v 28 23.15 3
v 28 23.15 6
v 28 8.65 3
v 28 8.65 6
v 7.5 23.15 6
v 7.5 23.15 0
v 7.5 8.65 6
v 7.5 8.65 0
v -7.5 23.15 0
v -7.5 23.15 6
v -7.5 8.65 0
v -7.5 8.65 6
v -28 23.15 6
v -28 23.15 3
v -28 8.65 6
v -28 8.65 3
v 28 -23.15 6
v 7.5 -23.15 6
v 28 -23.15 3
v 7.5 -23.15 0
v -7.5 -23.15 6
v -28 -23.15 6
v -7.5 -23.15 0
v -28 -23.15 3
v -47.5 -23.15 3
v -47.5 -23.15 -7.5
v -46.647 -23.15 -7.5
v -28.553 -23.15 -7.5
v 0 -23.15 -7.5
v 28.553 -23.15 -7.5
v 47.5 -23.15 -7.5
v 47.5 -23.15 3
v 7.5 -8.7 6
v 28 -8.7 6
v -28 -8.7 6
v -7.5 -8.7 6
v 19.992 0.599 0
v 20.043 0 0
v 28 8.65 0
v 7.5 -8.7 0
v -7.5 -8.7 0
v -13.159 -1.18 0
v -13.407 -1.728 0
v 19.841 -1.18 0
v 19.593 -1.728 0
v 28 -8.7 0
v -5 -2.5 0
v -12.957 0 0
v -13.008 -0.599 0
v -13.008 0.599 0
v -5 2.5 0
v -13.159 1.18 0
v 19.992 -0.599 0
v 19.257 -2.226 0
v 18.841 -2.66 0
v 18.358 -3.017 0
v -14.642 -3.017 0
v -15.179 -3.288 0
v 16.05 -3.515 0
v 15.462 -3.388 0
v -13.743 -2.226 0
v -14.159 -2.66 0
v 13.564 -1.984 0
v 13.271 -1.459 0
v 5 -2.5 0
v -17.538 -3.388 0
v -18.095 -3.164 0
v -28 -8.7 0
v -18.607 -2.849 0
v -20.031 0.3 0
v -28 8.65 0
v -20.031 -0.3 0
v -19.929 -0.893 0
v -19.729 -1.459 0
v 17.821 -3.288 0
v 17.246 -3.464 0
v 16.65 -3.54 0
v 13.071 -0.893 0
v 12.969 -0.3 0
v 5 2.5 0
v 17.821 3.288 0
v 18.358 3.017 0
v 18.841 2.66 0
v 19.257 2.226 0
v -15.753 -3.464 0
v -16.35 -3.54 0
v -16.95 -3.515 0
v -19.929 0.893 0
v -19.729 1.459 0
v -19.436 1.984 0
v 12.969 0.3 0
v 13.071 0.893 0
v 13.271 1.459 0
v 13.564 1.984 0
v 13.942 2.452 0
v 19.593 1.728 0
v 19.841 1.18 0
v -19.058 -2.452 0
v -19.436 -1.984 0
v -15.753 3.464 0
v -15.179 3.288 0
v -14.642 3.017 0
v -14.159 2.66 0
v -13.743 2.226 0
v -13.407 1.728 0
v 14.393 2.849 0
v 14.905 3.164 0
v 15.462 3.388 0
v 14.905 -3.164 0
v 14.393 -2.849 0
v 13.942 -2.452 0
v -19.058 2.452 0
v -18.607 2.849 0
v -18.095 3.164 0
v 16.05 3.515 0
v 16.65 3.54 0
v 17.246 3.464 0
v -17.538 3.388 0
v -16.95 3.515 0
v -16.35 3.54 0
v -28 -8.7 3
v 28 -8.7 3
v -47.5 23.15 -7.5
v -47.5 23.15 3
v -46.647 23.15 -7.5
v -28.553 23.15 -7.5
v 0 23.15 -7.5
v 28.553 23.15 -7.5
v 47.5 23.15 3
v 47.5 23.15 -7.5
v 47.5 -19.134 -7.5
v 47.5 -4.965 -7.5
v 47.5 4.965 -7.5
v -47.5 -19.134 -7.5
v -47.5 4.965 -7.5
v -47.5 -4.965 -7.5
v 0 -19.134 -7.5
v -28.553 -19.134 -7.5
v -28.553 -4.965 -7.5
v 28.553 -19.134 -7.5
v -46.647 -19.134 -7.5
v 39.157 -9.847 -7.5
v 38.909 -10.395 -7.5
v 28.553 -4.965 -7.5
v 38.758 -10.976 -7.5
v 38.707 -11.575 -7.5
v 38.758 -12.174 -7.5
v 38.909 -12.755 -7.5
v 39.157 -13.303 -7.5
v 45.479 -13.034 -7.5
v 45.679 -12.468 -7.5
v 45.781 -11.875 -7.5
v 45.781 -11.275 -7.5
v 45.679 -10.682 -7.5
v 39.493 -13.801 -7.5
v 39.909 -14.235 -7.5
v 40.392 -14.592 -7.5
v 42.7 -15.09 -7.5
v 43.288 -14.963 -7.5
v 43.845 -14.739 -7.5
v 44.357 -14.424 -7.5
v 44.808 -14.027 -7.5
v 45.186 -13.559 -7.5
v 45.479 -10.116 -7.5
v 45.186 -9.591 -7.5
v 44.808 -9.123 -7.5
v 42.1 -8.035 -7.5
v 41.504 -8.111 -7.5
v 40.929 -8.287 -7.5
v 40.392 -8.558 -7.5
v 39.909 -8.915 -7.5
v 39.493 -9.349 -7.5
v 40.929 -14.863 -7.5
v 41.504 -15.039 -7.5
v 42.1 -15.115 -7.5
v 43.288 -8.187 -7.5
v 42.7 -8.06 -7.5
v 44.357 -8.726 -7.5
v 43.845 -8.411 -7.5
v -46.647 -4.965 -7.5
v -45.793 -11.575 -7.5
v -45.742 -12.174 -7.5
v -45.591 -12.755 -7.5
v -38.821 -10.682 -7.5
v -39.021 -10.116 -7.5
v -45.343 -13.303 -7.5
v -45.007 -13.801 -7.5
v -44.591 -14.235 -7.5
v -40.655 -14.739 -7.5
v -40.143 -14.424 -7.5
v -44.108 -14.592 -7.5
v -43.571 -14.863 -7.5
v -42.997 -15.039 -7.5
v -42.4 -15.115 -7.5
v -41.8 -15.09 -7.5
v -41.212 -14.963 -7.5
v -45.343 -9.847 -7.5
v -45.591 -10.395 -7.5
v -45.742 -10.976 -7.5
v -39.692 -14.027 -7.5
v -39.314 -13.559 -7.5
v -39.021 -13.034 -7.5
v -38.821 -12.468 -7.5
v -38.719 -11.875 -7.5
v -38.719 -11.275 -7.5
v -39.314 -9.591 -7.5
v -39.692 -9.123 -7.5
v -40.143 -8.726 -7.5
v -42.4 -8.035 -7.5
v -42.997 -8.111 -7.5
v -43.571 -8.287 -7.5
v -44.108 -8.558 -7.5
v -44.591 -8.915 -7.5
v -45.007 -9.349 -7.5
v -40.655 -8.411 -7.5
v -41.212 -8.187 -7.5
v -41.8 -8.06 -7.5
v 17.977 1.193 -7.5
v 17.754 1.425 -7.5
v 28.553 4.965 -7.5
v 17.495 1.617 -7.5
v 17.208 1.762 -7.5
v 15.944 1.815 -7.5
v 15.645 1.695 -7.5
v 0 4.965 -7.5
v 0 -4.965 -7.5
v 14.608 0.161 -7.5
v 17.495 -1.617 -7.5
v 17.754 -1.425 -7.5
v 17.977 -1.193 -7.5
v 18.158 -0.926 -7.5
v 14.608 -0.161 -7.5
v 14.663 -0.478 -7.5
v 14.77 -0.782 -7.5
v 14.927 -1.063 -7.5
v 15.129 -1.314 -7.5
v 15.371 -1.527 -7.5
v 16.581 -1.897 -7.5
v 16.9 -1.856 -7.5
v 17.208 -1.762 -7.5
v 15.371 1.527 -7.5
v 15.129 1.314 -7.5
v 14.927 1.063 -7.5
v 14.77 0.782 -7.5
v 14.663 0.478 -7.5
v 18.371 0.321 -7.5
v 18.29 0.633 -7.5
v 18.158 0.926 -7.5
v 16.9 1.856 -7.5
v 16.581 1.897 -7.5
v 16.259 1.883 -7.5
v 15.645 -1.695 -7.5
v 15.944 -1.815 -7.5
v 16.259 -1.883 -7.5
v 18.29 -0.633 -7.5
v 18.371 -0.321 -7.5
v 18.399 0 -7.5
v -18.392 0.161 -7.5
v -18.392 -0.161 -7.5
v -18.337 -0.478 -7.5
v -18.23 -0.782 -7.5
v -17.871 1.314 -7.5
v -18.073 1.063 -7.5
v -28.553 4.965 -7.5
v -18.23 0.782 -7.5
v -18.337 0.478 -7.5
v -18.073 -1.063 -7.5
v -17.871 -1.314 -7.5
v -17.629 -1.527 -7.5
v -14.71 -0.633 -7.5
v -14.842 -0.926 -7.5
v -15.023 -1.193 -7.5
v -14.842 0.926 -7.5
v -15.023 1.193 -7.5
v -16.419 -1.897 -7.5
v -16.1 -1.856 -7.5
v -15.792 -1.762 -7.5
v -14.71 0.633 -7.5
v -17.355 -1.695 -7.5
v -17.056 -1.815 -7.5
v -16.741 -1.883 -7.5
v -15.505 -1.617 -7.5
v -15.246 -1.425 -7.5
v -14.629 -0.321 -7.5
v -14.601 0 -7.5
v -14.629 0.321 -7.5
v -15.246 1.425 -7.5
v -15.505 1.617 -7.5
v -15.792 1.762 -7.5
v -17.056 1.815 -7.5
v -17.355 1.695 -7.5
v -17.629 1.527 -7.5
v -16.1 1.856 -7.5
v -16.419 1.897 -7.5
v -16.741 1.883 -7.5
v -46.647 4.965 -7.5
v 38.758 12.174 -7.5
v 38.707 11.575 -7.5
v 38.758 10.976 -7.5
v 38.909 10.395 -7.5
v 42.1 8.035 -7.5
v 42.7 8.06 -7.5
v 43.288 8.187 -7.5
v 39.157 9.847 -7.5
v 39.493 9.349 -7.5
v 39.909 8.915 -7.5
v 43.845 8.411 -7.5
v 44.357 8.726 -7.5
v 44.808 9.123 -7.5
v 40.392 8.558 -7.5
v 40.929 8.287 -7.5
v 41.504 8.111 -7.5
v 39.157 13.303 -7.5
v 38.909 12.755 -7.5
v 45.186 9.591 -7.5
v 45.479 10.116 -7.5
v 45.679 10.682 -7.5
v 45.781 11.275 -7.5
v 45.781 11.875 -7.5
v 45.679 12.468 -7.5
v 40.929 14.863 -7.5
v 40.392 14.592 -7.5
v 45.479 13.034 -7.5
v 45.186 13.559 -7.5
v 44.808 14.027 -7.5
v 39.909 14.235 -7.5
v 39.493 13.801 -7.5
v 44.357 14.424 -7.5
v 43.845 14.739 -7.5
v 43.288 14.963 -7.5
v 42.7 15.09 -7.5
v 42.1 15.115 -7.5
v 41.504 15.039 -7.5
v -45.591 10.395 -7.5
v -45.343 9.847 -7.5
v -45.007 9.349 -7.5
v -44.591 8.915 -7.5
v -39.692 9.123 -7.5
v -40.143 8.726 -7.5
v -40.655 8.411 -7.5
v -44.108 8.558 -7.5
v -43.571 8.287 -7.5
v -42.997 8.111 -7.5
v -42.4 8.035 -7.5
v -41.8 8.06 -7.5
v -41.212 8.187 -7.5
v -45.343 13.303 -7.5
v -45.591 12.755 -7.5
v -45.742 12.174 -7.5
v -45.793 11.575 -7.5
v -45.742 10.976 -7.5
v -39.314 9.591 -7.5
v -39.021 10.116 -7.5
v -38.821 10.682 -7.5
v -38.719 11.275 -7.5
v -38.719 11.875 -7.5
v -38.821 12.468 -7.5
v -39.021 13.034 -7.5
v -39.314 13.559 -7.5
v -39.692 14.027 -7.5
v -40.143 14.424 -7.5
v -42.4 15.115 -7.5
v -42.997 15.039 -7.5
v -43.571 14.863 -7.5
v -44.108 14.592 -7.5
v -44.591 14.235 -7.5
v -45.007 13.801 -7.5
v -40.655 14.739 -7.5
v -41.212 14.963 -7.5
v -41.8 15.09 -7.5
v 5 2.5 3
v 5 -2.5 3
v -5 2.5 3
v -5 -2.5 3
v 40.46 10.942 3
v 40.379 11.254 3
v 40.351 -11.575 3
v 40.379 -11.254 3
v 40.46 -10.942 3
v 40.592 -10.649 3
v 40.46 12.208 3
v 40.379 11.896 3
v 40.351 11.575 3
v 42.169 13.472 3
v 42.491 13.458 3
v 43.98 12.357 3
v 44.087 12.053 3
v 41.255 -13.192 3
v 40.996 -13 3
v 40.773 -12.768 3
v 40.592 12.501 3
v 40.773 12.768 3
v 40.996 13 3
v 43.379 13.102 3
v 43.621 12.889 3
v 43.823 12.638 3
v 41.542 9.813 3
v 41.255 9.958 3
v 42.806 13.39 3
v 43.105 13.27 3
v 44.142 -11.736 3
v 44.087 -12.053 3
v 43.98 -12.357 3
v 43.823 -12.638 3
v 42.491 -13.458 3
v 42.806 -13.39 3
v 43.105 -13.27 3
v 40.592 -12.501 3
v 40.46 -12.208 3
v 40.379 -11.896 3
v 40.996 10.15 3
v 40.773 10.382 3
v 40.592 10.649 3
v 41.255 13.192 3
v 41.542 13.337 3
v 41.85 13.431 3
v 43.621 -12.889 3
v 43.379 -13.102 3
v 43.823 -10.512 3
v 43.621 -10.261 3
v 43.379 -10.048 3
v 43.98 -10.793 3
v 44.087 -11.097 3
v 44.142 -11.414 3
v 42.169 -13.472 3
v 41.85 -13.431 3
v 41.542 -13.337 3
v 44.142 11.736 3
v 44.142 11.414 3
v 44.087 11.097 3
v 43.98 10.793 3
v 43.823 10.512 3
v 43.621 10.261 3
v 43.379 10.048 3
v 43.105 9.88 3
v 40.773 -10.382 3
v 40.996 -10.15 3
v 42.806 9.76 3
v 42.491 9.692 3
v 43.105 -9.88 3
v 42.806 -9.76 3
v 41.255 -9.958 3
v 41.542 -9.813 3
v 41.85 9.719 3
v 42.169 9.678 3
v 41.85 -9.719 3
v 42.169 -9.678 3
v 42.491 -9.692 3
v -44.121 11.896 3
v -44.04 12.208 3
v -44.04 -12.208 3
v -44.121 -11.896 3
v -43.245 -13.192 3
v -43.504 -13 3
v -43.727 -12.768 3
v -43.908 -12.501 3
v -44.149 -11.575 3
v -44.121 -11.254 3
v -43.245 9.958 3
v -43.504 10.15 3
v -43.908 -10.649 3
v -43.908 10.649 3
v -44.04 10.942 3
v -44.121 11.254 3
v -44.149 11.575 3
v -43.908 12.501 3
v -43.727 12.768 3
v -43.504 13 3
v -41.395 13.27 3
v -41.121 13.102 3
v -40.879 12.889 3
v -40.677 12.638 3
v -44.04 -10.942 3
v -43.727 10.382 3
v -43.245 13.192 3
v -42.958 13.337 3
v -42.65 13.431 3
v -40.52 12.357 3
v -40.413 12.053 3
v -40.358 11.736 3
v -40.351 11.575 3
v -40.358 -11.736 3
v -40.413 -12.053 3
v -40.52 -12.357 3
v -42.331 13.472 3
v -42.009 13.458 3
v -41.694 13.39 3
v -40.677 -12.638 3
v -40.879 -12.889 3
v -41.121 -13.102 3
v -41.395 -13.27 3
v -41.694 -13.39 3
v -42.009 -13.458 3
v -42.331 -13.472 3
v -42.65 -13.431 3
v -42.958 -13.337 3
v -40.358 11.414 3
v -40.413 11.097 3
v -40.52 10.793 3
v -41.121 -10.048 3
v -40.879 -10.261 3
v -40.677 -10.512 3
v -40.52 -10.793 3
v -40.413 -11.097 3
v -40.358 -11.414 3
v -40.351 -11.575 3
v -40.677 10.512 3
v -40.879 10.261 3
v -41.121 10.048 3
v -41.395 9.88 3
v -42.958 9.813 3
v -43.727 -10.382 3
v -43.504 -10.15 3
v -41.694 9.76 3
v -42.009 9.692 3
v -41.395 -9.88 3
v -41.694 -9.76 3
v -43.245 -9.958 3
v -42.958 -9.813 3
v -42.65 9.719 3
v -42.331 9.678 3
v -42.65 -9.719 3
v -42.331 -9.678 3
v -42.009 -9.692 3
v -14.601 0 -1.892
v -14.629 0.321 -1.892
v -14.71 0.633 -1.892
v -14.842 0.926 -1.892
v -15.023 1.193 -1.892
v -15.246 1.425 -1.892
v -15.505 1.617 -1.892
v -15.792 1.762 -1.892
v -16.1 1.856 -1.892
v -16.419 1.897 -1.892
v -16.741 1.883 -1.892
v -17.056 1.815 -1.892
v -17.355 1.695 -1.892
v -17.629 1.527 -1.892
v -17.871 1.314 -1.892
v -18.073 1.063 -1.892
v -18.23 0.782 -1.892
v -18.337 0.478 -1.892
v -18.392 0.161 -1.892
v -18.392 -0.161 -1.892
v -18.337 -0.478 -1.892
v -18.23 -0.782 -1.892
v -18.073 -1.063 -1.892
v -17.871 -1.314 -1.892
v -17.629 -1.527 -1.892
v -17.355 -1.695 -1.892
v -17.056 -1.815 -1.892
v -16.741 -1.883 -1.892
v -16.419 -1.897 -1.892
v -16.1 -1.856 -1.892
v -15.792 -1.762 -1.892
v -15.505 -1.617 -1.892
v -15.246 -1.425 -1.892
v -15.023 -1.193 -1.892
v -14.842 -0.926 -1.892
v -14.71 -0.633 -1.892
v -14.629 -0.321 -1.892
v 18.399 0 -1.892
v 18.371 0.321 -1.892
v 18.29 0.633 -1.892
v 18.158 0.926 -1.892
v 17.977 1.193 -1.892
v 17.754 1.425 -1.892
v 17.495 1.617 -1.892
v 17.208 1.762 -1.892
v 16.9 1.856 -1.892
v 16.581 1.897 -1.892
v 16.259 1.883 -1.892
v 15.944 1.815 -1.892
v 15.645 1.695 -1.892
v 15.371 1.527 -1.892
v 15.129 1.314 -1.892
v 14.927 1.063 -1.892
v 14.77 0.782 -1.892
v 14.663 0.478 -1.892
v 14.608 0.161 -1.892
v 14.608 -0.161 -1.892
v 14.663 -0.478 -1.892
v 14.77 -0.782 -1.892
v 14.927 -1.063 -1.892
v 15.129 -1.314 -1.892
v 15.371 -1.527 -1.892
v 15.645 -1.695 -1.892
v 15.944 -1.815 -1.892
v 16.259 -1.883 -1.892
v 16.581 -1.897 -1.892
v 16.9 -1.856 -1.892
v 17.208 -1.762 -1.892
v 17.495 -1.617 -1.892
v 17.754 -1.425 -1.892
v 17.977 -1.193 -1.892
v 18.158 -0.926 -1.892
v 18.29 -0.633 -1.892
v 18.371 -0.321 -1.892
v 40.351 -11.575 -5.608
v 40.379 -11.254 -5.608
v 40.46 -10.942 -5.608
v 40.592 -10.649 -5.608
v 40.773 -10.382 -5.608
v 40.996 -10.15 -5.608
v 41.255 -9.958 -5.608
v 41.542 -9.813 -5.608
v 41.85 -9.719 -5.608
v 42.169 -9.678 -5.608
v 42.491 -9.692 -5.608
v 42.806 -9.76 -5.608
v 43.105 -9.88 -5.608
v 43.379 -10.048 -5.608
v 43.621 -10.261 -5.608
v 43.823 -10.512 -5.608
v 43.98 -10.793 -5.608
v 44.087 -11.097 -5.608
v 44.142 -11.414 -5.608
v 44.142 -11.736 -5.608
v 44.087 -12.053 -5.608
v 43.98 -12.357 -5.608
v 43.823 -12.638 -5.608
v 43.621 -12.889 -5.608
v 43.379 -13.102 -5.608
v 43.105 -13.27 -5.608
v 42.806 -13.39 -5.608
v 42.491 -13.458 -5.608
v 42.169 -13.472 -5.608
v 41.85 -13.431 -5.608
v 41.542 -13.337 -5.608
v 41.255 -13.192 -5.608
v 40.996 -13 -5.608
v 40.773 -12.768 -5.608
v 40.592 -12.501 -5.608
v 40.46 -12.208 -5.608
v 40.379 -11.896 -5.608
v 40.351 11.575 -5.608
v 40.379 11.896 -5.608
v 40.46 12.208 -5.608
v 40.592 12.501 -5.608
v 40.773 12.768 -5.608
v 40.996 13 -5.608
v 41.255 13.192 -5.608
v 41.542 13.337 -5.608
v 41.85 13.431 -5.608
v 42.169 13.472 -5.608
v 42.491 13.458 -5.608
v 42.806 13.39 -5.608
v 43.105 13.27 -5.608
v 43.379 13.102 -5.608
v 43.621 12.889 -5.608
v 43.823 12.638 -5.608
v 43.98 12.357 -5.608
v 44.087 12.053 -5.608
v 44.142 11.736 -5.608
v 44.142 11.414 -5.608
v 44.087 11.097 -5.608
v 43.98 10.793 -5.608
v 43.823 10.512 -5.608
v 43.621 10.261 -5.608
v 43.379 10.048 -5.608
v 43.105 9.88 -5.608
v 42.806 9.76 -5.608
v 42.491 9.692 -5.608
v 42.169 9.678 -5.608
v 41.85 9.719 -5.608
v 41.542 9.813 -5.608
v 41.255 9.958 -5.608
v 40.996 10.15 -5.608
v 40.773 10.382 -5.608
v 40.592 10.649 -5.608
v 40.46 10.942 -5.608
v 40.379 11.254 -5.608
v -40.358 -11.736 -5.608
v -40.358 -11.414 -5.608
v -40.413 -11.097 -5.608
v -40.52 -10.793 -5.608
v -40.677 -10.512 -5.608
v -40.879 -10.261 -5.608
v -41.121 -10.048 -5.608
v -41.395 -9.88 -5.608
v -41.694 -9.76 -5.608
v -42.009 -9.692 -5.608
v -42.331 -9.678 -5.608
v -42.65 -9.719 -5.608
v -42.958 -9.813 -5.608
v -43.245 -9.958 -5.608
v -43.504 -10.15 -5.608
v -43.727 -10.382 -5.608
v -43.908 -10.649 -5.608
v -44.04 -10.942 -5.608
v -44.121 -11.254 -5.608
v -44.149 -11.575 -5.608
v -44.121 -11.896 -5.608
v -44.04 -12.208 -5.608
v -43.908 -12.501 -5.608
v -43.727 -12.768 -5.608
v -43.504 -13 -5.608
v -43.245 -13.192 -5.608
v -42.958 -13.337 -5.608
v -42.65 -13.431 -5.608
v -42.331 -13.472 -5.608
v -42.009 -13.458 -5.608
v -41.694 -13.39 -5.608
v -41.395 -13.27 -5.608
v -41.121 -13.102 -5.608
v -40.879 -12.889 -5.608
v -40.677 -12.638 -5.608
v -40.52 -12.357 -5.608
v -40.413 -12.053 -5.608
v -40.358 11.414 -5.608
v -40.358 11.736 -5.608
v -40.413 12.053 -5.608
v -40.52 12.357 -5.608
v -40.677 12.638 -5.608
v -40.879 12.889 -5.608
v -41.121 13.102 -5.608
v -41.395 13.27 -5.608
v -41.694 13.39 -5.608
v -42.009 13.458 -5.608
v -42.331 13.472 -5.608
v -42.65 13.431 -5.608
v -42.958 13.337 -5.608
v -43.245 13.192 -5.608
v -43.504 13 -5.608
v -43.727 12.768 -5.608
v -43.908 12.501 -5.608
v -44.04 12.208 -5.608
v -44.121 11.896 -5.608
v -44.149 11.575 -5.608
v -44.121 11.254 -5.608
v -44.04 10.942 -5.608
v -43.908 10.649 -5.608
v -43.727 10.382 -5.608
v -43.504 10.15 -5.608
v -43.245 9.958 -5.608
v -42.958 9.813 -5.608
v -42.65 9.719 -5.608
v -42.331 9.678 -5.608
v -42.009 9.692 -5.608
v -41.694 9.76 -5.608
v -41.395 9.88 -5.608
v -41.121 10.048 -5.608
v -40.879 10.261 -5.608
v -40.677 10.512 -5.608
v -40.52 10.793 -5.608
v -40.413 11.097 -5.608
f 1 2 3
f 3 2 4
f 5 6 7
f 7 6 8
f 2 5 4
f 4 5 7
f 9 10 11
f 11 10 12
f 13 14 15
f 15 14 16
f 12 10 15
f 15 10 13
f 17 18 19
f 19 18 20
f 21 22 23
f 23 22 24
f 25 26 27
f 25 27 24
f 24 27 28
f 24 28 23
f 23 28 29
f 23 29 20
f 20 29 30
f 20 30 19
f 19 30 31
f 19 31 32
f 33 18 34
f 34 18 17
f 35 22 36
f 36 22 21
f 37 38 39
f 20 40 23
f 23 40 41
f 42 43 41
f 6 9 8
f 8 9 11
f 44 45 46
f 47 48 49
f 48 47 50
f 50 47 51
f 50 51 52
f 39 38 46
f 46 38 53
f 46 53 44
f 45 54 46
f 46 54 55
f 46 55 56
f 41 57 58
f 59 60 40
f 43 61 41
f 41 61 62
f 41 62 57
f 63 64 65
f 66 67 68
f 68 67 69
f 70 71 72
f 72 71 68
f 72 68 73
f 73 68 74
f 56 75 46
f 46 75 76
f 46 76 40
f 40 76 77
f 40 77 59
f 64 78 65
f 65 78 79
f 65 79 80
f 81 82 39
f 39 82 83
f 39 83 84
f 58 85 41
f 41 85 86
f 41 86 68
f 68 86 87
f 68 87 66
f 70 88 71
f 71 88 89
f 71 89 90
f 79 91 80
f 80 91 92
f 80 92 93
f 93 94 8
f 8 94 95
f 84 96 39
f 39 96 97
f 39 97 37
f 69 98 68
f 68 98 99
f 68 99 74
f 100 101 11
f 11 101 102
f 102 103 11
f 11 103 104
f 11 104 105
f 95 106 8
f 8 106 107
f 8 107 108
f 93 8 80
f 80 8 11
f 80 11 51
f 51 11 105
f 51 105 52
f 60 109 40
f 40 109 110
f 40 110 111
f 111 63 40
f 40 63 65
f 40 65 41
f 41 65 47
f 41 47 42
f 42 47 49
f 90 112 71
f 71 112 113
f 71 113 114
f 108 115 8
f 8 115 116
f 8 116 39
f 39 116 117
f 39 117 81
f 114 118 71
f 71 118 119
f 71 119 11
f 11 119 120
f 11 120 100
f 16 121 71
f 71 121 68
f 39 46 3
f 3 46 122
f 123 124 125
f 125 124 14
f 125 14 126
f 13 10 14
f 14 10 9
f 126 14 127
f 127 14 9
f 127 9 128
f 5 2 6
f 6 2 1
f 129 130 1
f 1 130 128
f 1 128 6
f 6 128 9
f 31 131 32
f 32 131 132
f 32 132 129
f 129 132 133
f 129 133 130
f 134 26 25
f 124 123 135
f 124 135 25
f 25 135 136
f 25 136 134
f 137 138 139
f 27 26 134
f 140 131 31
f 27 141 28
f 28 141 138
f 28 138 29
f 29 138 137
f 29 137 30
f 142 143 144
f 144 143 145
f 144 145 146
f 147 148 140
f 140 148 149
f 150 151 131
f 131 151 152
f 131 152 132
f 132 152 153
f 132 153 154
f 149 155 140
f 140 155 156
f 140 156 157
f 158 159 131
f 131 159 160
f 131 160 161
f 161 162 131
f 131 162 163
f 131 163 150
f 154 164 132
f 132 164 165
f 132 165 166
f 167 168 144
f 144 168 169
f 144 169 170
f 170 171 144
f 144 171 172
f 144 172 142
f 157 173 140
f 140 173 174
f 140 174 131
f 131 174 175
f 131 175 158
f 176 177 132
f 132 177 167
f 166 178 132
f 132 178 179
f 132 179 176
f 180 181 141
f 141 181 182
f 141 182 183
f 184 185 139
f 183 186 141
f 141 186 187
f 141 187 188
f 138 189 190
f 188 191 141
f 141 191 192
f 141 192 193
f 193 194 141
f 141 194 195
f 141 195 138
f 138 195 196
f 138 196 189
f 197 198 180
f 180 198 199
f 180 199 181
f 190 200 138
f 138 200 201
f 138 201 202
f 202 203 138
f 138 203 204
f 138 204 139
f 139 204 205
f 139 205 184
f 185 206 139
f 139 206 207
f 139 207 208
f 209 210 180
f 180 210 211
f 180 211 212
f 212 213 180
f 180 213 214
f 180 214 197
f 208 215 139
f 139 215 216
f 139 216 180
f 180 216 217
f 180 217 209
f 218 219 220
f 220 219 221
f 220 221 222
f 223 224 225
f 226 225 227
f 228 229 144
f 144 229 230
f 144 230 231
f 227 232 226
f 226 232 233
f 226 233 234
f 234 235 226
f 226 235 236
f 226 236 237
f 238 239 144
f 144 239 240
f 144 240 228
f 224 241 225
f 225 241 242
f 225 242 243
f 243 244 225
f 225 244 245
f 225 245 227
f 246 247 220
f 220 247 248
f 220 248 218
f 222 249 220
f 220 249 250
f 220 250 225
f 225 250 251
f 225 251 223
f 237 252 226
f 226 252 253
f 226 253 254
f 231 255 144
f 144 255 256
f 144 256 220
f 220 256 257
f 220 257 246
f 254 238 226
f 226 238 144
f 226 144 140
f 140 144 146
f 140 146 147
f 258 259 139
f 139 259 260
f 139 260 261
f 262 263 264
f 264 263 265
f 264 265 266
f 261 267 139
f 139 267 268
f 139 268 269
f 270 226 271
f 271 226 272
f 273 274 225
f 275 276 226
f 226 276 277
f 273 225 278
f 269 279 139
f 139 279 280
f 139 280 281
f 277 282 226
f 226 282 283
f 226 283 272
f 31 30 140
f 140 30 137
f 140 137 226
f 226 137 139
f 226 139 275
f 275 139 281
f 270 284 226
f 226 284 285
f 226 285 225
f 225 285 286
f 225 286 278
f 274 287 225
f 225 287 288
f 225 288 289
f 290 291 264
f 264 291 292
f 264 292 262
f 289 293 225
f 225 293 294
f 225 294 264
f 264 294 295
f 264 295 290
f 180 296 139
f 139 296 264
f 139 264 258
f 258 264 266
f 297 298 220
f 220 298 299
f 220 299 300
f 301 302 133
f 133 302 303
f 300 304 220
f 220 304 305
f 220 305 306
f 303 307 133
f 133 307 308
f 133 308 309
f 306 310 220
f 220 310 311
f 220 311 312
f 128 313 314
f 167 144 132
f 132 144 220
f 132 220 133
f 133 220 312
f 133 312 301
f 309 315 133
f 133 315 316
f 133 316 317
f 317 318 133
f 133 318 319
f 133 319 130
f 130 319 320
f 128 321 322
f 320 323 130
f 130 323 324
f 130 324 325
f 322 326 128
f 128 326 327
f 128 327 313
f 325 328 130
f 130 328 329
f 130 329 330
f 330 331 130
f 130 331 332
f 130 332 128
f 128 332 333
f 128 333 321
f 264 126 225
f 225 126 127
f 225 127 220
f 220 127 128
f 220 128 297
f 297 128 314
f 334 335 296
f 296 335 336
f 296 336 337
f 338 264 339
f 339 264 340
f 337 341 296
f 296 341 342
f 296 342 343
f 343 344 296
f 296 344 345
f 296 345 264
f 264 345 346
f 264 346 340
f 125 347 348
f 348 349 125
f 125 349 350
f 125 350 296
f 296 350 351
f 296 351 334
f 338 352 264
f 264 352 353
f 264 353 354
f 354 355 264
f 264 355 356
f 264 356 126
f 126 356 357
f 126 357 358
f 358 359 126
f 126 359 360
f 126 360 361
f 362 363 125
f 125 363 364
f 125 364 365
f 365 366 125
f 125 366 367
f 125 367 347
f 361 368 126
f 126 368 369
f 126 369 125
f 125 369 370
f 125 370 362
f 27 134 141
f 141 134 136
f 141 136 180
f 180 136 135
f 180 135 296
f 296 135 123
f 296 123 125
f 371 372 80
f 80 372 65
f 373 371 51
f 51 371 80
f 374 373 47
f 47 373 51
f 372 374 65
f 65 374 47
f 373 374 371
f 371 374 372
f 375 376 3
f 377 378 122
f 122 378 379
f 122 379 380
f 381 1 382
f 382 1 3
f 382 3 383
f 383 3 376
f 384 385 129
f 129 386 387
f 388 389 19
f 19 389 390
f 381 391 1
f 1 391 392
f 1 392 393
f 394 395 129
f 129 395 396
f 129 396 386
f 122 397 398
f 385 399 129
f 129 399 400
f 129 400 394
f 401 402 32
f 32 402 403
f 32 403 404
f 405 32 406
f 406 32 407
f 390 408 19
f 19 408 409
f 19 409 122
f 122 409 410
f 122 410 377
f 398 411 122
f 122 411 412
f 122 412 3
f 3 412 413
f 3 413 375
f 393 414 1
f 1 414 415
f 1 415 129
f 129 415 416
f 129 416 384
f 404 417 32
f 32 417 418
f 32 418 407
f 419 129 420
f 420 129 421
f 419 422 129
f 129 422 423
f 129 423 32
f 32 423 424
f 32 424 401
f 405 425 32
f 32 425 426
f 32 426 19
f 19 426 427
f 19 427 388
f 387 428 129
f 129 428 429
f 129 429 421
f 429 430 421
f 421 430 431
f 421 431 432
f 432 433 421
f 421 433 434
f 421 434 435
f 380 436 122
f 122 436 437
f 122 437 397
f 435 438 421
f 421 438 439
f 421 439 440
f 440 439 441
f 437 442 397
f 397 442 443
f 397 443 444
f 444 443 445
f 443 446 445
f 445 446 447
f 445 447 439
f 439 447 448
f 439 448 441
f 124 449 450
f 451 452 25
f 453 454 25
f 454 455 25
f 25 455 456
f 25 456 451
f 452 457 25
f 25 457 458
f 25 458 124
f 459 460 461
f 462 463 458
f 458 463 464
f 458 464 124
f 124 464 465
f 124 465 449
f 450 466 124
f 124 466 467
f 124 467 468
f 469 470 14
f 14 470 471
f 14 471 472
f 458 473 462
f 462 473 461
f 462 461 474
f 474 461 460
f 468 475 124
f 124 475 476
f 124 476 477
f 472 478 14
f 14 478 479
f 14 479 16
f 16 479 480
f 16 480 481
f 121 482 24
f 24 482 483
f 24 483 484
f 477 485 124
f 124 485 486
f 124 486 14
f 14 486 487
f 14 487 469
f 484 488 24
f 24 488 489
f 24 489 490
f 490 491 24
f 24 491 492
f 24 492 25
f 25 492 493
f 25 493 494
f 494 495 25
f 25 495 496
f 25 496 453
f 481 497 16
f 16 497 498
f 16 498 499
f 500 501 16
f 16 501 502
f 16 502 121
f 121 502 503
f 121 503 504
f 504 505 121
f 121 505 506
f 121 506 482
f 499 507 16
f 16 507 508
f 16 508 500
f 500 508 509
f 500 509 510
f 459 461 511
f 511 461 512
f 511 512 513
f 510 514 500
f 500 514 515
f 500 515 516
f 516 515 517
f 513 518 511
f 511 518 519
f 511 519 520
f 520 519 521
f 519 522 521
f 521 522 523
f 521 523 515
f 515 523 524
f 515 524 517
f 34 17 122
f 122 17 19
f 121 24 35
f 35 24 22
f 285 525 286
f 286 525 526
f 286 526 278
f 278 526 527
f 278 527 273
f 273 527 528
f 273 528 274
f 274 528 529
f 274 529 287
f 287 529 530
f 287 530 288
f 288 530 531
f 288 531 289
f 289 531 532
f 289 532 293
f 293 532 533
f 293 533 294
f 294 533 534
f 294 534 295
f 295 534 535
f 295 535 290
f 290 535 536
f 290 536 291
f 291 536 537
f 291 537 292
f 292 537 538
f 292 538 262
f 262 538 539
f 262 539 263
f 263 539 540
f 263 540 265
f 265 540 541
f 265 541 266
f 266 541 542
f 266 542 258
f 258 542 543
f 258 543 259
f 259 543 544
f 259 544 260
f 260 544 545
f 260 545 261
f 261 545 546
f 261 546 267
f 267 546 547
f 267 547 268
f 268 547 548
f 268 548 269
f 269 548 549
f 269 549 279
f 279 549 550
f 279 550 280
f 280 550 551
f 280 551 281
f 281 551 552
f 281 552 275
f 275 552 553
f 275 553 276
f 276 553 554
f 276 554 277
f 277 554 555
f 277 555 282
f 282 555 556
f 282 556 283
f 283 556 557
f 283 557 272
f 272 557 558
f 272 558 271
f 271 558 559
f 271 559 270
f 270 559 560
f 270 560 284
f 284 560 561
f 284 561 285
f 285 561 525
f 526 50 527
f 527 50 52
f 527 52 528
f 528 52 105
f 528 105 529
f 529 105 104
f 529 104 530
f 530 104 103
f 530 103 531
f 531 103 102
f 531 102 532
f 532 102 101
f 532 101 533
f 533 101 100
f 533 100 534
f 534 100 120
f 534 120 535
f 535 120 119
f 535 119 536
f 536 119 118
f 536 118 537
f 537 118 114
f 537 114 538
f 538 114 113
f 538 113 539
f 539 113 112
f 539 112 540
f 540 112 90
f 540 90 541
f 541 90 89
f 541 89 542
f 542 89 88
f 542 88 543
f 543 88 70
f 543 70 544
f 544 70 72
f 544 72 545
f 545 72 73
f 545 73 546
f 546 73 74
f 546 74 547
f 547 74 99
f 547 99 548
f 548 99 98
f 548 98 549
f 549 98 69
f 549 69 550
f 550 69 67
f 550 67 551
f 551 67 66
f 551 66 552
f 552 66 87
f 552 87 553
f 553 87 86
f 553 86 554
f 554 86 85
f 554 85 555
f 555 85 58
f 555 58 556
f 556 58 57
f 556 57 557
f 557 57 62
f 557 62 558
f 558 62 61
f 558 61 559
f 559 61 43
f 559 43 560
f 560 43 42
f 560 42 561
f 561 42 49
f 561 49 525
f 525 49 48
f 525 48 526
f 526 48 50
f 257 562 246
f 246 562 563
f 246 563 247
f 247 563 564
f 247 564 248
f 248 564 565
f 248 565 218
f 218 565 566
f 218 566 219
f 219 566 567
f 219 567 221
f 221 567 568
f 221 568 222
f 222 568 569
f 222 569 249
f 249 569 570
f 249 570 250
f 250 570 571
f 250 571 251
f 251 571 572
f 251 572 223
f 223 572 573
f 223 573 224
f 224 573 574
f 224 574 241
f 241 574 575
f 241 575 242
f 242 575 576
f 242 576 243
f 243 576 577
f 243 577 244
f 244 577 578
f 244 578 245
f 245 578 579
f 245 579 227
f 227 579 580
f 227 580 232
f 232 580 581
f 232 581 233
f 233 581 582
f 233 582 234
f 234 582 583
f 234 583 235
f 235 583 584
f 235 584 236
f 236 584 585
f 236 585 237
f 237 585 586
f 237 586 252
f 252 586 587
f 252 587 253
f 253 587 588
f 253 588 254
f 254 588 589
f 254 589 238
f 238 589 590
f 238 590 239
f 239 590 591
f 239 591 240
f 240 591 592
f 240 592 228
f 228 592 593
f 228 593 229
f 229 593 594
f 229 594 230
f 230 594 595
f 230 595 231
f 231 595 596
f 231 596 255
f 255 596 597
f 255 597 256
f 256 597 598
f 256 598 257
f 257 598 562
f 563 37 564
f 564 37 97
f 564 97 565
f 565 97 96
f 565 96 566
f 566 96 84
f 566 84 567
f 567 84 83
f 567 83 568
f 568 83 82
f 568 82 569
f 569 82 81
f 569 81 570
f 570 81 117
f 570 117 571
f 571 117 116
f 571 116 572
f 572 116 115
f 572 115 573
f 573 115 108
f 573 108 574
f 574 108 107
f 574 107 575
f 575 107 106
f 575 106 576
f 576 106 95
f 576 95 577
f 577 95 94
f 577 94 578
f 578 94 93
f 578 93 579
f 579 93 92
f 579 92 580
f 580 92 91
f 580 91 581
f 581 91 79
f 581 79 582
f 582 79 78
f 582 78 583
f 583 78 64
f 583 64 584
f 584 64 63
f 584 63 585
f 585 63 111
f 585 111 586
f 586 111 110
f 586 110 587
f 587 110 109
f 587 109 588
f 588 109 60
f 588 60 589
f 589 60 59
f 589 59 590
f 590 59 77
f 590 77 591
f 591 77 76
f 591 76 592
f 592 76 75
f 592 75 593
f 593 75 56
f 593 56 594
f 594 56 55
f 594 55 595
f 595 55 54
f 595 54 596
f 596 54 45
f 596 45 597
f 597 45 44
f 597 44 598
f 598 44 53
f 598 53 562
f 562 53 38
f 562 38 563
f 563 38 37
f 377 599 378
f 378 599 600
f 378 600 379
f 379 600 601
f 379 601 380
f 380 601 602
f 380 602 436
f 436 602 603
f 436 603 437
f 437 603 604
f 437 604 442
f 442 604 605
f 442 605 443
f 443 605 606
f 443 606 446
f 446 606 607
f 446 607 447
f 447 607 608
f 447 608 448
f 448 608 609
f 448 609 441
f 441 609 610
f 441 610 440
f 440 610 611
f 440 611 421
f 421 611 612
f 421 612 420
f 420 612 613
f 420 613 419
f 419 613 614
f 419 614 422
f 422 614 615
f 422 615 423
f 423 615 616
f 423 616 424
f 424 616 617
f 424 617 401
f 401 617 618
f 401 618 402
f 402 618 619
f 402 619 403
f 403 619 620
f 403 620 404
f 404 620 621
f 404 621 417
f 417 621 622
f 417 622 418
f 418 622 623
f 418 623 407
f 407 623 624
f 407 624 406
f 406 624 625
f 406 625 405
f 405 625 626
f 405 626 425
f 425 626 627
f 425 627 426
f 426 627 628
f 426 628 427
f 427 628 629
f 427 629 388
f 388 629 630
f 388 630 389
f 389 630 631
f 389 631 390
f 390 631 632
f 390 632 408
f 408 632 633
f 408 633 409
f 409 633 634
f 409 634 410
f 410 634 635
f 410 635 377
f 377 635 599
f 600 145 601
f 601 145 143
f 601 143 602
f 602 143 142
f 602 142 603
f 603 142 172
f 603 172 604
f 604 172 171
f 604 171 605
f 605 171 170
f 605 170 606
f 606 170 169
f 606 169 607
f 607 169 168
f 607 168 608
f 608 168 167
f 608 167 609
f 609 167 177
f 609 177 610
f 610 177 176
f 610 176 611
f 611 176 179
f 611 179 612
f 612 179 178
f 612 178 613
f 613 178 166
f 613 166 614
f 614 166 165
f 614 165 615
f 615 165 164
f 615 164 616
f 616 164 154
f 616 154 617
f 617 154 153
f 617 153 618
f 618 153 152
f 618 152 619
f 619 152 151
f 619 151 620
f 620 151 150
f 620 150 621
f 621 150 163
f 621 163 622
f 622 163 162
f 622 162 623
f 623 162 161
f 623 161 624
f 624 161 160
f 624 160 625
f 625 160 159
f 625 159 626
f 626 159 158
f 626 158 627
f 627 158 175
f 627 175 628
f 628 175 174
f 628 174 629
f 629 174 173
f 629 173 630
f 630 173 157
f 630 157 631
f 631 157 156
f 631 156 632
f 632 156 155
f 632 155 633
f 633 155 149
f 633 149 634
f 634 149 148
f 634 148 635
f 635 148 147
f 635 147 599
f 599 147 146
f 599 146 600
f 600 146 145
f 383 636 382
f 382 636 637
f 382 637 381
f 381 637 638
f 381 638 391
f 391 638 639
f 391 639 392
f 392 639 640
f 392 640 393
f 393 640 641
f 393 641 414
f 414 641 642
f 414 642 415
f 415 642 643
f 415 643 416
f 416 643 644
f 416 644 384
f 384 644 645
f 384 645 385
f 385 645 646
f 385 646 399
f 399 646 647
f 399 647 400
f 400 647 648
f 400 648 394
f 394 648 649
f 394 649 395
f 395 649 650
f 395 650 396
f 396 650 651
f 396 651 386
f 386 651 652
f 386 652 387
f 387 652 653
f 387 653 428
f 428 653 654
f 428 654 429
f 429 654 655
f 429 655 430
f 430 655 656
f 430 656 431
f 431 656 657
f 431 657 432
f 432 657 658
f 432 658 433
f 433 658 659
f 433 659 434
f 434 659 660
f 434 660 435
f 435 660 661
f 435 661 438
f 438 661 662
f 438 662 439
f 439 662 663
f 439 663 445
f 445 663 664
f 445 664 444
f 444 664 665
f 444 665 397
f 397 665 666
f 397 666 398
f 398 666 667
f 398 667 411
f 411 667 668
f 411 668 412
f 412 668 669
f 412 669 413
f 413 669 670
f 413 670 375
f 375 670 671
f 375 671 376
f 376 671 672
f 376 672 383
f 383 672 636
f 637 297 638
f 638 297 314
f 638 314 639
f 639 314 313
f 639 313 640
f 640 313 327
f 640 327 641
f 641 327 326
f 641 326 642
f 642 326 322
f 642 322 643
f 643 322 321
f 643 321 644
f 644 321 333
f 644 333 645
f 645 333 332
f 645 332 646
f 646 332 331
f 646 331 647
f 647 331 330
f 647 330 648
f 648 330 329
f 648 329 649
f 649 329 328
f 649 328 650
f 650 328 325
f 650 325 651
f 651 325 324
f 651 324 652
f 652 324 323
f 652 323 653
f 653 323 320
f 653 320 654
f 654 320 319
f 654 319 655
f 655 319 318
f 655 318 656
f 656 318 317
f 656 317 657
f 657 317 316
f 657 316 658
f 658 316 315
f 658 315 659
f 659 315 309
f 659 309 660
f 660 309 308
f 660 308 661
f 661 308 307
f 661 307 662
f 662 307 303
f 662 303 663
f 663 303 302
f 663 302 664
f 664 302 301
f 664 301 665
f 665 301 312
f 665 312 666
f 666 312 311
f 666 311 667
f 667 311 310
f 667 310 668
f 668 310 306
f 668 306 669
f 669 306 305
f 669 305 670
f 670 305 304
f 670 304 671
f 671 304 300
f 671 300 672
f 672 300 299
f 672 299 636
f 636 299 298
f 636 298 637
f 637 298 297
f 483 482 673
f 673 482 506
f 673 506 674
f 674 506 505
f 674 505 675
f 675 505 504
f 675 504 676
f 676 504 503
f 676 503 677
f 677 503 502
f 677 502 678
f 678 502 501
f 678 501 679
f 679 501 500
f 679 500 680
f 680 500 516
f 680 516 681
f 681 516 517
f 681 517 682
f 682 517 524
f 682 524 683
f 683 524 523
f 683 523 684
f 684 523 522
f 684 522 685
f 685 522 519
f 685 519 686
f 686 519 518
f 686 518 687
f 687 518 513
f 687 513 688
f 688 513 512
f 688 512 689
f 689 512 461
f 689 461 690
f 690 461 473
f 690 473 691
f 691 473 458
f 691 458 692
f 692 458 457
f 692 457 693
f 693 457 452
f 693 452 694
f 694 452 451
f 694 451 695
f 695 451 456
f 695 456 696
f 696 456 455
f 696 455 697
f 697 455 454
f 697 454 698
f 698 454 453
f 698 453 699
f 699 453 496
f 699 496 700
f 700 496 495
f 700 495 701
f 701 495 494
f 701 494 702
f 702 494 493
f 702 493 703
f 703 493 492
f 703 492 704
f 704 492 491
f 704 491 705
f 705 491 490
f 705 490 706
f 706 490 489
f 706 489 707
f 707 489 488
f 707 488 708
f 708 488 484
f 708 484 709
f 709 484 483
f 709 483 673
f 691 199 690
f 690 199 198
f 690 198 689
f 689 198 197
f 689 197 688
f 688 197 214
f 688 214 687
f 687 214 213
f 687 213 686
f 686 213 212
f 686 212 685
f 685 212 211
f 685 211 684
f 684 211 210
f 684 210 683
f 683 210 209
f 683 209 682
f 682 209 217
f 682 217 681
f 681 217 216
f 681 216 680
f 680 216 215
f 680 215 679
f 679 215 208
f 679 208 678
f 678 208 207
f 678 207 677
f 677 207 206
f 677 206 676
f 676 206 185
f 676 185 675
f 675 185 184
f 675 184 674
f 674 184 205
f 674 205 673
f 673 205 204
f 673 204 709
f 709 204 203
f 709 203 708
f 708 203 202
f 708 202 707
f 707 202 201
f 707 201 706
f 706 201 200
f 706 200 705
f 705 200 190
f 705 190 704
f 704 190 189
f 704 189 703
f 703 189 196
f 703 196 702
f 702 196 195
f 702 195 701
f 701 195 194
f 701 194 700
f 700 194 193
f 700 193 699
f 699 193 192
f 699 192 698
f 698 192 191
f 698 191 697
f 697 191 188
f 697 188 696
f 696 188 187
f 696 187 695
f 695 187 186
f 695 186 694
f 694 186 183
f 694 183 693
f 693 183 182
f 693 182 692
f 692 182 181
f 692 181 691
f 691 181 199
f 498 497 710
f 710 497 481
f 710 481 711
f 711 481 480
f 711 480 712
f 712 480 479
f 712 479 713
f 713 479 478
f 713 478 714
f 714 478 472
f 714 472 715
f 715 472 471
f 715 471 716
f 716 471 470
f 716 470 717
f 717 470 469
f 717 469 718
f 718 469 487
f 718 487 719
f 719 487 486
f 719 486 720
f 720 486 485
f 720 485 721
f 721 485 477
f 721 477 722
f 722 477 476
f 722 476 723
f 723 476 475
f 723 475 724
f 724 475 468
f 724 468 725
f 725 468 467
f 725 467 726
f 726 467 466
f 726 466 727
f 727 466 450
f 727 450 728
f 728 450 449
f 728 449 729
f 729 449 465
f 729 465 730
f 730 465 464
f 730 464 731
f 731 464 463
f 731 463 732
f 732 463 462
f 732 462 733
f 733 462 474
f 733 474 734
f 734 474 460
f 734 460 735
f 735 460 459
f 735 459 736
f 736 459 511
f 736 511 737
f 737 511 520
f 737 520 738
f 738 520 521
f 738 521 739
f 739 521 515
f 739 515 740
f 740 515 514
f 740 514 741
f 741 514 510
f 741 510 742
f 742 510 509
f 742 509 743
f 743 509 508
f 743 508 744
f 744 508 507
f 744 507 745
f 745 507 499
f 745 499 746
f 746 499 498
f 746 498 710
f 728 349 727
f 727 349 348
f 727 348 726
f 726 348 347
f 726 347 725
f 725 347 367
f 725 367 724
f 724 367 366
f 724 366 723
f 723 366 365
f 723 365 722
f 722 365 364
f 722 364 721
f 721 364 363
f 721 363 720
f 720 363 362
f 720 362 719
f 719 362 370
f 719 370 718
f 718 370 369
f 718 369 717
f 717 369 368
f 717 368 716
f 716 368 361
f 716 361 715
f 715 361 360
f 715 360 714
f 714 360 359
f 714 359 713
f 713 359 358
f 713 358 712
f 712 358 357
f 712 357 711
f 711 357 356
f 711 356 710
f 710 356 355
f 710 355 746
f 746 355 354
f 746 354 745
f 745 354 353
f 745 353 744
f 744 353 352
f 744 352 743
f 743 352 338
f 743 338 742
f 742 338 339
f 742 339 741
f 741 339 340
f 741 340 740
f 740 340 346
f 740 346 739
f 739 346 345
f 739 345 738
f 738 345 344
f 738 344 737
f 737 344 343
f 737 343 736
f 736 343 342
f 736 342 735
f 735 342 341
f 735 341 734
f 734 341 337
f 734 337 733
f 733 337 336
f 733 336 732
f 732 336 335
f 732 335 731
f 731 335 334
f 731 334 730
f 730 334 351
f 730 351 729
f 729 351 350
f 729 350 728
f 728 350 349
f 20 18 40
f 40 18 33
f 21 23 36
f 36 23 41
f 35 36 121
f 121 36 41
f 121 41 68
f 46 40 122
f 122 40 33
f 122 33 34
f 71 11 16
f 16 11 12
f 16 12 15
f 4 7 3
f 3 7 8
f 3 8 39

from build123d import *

# Parameters (mm, degrees)
SKETCH2_W                                      = 95
SKETCH2_H                                      = 46.3
BOSS_EXTRUDE1_DEPTH                            = 7.5
SKETCH3_W                                      = 10
SKETCH3_H                                      = 5
SKETCH3_W_2                                    = 19.5
SKETCH3_H_2                                    = 46.3
BOSS_EXTRUDE2_DEPTH                            = 3
SKETCH4_W                                      = 56
SKETCH4_H                                      = 15
SKETCH4_W_2                                    = 20.5
BOSS_EXTRUDE3_DEPTH                            = 6
CSK_FOR_6_FLAT_HEAD_MACHINE_SCREW1_D           = 3.7973
CSK_FOR_6_FLAT_HEAD_MACHINE_SCREW1_CSINK_D     = 7.0866
CSK_FOR_6_FLAT_HEAD_MACHINE_SCREW1_CSINK_ANGLE = 82
CSK_FOR_6_FLAT_HEAD_MACHINE_SCREW2_D           = 3.7973
CSK_FOR_6_FLAT_HEAD_MACHINE_SCREW2_CSINK_D     = 7.0866
CSK_FOR_6_FLAT_HEAD_MACHINE_SCREW2_CSINK_ANGLE = 82
SKETCH18_W                                     = 15
SKETCH18_H                                     = 25.808879712
CUT_EXTRUDE4_DEPTH                             = 6
SKETCH19_W                                     = 20.5
SKETCH19_H                                     = 6
CUT_EXTRUDE5_DEPTH                             = 16.85
CUT_EXTRUDE5_DEPTH_BACK                        = 0.5


with BuildPart() as part:
    # Sketch2 → Boss-Extrude1 (new body)
    with BuildSketch(Plane.XY):
        Rectangle(SKETCH2_W, SKETCH2_H)
    extrude(amount=-BOSS_EXTRUDE1_DEPTH)

    # Sketch3 → Boss-Extrude2 (add)
    with BuildSketch(Plane.XY):
        Rectangle(SKETCH3_W, SKETCH3_H)
        with Locations((37.75, 0)):
            Rectangle(SKETCH3_W_2, SKETCH3_H_2)
        with Locations((-37.75, 0)):
            Rectangle(SKETCH3_W_2, SKETCH3_H_2)
    extrude(amount=BOSS_EXTRUDE2_DEPTH)

    # Sketch4 → Boss-Extrude3 (add)
    with BuildSketch(Plane.XY):
        with Locations((0, -15.65)):
            Rectangle(SKETCH4_W, SKETCH4_H)
        with Locations((17.75, 15.65)):
            Rectangle(SKETCH4_W_2, SKETCH4_H)
        with Locations((-17.75, 15.65)):
            Rectangle(SKETCH4_W_2, SKETCH4_H)
    extrude(amount=BOSS_EXTRUDE3_DEPTH)

    # CSK for #6 Flat Head Machine Screw1 (through all)
    with Locations(Plane.XY):
        with Locations((16.5, 0), (-16.5, 0)):
            CounterSinkHole(CSK_FOR_6_FLAT_HEAD_MACHINE_SCREW1_D / 2, CSK_FOR_6_FLAT_HEAD_MACHINE_SCREW1_CSINK_D / 2, counter_sink_angle=CSK_FOR_6_FLAT_HEAD_MACHINE_SCREW1_CSINK_ANGLE)

    # CSK for #6 Flat Head Machine Screw2 (through all)
    with Locations(Plane(origin=(0, 0, -7.5), x_dir=(-1, 0, 0), z_dir=(0, 0, -1))):
        with Locations((42.25, 11.575), (42.25, -11.575), (-42.25, 11.575), (-42.25, -11.575)):
            CounterSinkHole(CSK_FOR_6_FLAT_HEAD_MACHINE_SCREW2_D / 2, CSK_FOR_6_FLAT_HEAD_MACHINE_SCREW2_CSINK_D / 2, counter_sink_angle=CSK_FOR_6_FLAT_HEAD_MACHINE_SCREW2_CSINK_ANGLE)

    # Sketch18 → Cut-Extrude4 (cut)
    with BuildSketch(Plane.XY):
        with Locations((0, -19.186864523)):
            Rectangle(SKETCH18_W, SKETCH18_H)
    extrude(amount=CUT_EXTRUDE4_DEPTH, mode=Mode.SUBTRACT)

    # Sketch19 → Cut-Extrude5 (cut, two sides)
    with BuildSketch(Plane.XZ.offset(-8.15)) as cut_extrude5_sk:
        with Locations((-17.75, 3)):
            Rectangle(SKETCH19_W, SKETCH19_H)
        with Locations((17.75, 3)):
            Rectangle(SKETCH19_W, SKETCH19_H)
    extrude(amount=CUT_EXTRUDE5_DEPTH, mode=Mode.SUBTRACT)
    extrude(cut_extrude5_sk.sketch, amount=-CUT_EXTRUDE5_DEPTH_BACK, mode=Mode.SUBTRACT)


solid = part.part
